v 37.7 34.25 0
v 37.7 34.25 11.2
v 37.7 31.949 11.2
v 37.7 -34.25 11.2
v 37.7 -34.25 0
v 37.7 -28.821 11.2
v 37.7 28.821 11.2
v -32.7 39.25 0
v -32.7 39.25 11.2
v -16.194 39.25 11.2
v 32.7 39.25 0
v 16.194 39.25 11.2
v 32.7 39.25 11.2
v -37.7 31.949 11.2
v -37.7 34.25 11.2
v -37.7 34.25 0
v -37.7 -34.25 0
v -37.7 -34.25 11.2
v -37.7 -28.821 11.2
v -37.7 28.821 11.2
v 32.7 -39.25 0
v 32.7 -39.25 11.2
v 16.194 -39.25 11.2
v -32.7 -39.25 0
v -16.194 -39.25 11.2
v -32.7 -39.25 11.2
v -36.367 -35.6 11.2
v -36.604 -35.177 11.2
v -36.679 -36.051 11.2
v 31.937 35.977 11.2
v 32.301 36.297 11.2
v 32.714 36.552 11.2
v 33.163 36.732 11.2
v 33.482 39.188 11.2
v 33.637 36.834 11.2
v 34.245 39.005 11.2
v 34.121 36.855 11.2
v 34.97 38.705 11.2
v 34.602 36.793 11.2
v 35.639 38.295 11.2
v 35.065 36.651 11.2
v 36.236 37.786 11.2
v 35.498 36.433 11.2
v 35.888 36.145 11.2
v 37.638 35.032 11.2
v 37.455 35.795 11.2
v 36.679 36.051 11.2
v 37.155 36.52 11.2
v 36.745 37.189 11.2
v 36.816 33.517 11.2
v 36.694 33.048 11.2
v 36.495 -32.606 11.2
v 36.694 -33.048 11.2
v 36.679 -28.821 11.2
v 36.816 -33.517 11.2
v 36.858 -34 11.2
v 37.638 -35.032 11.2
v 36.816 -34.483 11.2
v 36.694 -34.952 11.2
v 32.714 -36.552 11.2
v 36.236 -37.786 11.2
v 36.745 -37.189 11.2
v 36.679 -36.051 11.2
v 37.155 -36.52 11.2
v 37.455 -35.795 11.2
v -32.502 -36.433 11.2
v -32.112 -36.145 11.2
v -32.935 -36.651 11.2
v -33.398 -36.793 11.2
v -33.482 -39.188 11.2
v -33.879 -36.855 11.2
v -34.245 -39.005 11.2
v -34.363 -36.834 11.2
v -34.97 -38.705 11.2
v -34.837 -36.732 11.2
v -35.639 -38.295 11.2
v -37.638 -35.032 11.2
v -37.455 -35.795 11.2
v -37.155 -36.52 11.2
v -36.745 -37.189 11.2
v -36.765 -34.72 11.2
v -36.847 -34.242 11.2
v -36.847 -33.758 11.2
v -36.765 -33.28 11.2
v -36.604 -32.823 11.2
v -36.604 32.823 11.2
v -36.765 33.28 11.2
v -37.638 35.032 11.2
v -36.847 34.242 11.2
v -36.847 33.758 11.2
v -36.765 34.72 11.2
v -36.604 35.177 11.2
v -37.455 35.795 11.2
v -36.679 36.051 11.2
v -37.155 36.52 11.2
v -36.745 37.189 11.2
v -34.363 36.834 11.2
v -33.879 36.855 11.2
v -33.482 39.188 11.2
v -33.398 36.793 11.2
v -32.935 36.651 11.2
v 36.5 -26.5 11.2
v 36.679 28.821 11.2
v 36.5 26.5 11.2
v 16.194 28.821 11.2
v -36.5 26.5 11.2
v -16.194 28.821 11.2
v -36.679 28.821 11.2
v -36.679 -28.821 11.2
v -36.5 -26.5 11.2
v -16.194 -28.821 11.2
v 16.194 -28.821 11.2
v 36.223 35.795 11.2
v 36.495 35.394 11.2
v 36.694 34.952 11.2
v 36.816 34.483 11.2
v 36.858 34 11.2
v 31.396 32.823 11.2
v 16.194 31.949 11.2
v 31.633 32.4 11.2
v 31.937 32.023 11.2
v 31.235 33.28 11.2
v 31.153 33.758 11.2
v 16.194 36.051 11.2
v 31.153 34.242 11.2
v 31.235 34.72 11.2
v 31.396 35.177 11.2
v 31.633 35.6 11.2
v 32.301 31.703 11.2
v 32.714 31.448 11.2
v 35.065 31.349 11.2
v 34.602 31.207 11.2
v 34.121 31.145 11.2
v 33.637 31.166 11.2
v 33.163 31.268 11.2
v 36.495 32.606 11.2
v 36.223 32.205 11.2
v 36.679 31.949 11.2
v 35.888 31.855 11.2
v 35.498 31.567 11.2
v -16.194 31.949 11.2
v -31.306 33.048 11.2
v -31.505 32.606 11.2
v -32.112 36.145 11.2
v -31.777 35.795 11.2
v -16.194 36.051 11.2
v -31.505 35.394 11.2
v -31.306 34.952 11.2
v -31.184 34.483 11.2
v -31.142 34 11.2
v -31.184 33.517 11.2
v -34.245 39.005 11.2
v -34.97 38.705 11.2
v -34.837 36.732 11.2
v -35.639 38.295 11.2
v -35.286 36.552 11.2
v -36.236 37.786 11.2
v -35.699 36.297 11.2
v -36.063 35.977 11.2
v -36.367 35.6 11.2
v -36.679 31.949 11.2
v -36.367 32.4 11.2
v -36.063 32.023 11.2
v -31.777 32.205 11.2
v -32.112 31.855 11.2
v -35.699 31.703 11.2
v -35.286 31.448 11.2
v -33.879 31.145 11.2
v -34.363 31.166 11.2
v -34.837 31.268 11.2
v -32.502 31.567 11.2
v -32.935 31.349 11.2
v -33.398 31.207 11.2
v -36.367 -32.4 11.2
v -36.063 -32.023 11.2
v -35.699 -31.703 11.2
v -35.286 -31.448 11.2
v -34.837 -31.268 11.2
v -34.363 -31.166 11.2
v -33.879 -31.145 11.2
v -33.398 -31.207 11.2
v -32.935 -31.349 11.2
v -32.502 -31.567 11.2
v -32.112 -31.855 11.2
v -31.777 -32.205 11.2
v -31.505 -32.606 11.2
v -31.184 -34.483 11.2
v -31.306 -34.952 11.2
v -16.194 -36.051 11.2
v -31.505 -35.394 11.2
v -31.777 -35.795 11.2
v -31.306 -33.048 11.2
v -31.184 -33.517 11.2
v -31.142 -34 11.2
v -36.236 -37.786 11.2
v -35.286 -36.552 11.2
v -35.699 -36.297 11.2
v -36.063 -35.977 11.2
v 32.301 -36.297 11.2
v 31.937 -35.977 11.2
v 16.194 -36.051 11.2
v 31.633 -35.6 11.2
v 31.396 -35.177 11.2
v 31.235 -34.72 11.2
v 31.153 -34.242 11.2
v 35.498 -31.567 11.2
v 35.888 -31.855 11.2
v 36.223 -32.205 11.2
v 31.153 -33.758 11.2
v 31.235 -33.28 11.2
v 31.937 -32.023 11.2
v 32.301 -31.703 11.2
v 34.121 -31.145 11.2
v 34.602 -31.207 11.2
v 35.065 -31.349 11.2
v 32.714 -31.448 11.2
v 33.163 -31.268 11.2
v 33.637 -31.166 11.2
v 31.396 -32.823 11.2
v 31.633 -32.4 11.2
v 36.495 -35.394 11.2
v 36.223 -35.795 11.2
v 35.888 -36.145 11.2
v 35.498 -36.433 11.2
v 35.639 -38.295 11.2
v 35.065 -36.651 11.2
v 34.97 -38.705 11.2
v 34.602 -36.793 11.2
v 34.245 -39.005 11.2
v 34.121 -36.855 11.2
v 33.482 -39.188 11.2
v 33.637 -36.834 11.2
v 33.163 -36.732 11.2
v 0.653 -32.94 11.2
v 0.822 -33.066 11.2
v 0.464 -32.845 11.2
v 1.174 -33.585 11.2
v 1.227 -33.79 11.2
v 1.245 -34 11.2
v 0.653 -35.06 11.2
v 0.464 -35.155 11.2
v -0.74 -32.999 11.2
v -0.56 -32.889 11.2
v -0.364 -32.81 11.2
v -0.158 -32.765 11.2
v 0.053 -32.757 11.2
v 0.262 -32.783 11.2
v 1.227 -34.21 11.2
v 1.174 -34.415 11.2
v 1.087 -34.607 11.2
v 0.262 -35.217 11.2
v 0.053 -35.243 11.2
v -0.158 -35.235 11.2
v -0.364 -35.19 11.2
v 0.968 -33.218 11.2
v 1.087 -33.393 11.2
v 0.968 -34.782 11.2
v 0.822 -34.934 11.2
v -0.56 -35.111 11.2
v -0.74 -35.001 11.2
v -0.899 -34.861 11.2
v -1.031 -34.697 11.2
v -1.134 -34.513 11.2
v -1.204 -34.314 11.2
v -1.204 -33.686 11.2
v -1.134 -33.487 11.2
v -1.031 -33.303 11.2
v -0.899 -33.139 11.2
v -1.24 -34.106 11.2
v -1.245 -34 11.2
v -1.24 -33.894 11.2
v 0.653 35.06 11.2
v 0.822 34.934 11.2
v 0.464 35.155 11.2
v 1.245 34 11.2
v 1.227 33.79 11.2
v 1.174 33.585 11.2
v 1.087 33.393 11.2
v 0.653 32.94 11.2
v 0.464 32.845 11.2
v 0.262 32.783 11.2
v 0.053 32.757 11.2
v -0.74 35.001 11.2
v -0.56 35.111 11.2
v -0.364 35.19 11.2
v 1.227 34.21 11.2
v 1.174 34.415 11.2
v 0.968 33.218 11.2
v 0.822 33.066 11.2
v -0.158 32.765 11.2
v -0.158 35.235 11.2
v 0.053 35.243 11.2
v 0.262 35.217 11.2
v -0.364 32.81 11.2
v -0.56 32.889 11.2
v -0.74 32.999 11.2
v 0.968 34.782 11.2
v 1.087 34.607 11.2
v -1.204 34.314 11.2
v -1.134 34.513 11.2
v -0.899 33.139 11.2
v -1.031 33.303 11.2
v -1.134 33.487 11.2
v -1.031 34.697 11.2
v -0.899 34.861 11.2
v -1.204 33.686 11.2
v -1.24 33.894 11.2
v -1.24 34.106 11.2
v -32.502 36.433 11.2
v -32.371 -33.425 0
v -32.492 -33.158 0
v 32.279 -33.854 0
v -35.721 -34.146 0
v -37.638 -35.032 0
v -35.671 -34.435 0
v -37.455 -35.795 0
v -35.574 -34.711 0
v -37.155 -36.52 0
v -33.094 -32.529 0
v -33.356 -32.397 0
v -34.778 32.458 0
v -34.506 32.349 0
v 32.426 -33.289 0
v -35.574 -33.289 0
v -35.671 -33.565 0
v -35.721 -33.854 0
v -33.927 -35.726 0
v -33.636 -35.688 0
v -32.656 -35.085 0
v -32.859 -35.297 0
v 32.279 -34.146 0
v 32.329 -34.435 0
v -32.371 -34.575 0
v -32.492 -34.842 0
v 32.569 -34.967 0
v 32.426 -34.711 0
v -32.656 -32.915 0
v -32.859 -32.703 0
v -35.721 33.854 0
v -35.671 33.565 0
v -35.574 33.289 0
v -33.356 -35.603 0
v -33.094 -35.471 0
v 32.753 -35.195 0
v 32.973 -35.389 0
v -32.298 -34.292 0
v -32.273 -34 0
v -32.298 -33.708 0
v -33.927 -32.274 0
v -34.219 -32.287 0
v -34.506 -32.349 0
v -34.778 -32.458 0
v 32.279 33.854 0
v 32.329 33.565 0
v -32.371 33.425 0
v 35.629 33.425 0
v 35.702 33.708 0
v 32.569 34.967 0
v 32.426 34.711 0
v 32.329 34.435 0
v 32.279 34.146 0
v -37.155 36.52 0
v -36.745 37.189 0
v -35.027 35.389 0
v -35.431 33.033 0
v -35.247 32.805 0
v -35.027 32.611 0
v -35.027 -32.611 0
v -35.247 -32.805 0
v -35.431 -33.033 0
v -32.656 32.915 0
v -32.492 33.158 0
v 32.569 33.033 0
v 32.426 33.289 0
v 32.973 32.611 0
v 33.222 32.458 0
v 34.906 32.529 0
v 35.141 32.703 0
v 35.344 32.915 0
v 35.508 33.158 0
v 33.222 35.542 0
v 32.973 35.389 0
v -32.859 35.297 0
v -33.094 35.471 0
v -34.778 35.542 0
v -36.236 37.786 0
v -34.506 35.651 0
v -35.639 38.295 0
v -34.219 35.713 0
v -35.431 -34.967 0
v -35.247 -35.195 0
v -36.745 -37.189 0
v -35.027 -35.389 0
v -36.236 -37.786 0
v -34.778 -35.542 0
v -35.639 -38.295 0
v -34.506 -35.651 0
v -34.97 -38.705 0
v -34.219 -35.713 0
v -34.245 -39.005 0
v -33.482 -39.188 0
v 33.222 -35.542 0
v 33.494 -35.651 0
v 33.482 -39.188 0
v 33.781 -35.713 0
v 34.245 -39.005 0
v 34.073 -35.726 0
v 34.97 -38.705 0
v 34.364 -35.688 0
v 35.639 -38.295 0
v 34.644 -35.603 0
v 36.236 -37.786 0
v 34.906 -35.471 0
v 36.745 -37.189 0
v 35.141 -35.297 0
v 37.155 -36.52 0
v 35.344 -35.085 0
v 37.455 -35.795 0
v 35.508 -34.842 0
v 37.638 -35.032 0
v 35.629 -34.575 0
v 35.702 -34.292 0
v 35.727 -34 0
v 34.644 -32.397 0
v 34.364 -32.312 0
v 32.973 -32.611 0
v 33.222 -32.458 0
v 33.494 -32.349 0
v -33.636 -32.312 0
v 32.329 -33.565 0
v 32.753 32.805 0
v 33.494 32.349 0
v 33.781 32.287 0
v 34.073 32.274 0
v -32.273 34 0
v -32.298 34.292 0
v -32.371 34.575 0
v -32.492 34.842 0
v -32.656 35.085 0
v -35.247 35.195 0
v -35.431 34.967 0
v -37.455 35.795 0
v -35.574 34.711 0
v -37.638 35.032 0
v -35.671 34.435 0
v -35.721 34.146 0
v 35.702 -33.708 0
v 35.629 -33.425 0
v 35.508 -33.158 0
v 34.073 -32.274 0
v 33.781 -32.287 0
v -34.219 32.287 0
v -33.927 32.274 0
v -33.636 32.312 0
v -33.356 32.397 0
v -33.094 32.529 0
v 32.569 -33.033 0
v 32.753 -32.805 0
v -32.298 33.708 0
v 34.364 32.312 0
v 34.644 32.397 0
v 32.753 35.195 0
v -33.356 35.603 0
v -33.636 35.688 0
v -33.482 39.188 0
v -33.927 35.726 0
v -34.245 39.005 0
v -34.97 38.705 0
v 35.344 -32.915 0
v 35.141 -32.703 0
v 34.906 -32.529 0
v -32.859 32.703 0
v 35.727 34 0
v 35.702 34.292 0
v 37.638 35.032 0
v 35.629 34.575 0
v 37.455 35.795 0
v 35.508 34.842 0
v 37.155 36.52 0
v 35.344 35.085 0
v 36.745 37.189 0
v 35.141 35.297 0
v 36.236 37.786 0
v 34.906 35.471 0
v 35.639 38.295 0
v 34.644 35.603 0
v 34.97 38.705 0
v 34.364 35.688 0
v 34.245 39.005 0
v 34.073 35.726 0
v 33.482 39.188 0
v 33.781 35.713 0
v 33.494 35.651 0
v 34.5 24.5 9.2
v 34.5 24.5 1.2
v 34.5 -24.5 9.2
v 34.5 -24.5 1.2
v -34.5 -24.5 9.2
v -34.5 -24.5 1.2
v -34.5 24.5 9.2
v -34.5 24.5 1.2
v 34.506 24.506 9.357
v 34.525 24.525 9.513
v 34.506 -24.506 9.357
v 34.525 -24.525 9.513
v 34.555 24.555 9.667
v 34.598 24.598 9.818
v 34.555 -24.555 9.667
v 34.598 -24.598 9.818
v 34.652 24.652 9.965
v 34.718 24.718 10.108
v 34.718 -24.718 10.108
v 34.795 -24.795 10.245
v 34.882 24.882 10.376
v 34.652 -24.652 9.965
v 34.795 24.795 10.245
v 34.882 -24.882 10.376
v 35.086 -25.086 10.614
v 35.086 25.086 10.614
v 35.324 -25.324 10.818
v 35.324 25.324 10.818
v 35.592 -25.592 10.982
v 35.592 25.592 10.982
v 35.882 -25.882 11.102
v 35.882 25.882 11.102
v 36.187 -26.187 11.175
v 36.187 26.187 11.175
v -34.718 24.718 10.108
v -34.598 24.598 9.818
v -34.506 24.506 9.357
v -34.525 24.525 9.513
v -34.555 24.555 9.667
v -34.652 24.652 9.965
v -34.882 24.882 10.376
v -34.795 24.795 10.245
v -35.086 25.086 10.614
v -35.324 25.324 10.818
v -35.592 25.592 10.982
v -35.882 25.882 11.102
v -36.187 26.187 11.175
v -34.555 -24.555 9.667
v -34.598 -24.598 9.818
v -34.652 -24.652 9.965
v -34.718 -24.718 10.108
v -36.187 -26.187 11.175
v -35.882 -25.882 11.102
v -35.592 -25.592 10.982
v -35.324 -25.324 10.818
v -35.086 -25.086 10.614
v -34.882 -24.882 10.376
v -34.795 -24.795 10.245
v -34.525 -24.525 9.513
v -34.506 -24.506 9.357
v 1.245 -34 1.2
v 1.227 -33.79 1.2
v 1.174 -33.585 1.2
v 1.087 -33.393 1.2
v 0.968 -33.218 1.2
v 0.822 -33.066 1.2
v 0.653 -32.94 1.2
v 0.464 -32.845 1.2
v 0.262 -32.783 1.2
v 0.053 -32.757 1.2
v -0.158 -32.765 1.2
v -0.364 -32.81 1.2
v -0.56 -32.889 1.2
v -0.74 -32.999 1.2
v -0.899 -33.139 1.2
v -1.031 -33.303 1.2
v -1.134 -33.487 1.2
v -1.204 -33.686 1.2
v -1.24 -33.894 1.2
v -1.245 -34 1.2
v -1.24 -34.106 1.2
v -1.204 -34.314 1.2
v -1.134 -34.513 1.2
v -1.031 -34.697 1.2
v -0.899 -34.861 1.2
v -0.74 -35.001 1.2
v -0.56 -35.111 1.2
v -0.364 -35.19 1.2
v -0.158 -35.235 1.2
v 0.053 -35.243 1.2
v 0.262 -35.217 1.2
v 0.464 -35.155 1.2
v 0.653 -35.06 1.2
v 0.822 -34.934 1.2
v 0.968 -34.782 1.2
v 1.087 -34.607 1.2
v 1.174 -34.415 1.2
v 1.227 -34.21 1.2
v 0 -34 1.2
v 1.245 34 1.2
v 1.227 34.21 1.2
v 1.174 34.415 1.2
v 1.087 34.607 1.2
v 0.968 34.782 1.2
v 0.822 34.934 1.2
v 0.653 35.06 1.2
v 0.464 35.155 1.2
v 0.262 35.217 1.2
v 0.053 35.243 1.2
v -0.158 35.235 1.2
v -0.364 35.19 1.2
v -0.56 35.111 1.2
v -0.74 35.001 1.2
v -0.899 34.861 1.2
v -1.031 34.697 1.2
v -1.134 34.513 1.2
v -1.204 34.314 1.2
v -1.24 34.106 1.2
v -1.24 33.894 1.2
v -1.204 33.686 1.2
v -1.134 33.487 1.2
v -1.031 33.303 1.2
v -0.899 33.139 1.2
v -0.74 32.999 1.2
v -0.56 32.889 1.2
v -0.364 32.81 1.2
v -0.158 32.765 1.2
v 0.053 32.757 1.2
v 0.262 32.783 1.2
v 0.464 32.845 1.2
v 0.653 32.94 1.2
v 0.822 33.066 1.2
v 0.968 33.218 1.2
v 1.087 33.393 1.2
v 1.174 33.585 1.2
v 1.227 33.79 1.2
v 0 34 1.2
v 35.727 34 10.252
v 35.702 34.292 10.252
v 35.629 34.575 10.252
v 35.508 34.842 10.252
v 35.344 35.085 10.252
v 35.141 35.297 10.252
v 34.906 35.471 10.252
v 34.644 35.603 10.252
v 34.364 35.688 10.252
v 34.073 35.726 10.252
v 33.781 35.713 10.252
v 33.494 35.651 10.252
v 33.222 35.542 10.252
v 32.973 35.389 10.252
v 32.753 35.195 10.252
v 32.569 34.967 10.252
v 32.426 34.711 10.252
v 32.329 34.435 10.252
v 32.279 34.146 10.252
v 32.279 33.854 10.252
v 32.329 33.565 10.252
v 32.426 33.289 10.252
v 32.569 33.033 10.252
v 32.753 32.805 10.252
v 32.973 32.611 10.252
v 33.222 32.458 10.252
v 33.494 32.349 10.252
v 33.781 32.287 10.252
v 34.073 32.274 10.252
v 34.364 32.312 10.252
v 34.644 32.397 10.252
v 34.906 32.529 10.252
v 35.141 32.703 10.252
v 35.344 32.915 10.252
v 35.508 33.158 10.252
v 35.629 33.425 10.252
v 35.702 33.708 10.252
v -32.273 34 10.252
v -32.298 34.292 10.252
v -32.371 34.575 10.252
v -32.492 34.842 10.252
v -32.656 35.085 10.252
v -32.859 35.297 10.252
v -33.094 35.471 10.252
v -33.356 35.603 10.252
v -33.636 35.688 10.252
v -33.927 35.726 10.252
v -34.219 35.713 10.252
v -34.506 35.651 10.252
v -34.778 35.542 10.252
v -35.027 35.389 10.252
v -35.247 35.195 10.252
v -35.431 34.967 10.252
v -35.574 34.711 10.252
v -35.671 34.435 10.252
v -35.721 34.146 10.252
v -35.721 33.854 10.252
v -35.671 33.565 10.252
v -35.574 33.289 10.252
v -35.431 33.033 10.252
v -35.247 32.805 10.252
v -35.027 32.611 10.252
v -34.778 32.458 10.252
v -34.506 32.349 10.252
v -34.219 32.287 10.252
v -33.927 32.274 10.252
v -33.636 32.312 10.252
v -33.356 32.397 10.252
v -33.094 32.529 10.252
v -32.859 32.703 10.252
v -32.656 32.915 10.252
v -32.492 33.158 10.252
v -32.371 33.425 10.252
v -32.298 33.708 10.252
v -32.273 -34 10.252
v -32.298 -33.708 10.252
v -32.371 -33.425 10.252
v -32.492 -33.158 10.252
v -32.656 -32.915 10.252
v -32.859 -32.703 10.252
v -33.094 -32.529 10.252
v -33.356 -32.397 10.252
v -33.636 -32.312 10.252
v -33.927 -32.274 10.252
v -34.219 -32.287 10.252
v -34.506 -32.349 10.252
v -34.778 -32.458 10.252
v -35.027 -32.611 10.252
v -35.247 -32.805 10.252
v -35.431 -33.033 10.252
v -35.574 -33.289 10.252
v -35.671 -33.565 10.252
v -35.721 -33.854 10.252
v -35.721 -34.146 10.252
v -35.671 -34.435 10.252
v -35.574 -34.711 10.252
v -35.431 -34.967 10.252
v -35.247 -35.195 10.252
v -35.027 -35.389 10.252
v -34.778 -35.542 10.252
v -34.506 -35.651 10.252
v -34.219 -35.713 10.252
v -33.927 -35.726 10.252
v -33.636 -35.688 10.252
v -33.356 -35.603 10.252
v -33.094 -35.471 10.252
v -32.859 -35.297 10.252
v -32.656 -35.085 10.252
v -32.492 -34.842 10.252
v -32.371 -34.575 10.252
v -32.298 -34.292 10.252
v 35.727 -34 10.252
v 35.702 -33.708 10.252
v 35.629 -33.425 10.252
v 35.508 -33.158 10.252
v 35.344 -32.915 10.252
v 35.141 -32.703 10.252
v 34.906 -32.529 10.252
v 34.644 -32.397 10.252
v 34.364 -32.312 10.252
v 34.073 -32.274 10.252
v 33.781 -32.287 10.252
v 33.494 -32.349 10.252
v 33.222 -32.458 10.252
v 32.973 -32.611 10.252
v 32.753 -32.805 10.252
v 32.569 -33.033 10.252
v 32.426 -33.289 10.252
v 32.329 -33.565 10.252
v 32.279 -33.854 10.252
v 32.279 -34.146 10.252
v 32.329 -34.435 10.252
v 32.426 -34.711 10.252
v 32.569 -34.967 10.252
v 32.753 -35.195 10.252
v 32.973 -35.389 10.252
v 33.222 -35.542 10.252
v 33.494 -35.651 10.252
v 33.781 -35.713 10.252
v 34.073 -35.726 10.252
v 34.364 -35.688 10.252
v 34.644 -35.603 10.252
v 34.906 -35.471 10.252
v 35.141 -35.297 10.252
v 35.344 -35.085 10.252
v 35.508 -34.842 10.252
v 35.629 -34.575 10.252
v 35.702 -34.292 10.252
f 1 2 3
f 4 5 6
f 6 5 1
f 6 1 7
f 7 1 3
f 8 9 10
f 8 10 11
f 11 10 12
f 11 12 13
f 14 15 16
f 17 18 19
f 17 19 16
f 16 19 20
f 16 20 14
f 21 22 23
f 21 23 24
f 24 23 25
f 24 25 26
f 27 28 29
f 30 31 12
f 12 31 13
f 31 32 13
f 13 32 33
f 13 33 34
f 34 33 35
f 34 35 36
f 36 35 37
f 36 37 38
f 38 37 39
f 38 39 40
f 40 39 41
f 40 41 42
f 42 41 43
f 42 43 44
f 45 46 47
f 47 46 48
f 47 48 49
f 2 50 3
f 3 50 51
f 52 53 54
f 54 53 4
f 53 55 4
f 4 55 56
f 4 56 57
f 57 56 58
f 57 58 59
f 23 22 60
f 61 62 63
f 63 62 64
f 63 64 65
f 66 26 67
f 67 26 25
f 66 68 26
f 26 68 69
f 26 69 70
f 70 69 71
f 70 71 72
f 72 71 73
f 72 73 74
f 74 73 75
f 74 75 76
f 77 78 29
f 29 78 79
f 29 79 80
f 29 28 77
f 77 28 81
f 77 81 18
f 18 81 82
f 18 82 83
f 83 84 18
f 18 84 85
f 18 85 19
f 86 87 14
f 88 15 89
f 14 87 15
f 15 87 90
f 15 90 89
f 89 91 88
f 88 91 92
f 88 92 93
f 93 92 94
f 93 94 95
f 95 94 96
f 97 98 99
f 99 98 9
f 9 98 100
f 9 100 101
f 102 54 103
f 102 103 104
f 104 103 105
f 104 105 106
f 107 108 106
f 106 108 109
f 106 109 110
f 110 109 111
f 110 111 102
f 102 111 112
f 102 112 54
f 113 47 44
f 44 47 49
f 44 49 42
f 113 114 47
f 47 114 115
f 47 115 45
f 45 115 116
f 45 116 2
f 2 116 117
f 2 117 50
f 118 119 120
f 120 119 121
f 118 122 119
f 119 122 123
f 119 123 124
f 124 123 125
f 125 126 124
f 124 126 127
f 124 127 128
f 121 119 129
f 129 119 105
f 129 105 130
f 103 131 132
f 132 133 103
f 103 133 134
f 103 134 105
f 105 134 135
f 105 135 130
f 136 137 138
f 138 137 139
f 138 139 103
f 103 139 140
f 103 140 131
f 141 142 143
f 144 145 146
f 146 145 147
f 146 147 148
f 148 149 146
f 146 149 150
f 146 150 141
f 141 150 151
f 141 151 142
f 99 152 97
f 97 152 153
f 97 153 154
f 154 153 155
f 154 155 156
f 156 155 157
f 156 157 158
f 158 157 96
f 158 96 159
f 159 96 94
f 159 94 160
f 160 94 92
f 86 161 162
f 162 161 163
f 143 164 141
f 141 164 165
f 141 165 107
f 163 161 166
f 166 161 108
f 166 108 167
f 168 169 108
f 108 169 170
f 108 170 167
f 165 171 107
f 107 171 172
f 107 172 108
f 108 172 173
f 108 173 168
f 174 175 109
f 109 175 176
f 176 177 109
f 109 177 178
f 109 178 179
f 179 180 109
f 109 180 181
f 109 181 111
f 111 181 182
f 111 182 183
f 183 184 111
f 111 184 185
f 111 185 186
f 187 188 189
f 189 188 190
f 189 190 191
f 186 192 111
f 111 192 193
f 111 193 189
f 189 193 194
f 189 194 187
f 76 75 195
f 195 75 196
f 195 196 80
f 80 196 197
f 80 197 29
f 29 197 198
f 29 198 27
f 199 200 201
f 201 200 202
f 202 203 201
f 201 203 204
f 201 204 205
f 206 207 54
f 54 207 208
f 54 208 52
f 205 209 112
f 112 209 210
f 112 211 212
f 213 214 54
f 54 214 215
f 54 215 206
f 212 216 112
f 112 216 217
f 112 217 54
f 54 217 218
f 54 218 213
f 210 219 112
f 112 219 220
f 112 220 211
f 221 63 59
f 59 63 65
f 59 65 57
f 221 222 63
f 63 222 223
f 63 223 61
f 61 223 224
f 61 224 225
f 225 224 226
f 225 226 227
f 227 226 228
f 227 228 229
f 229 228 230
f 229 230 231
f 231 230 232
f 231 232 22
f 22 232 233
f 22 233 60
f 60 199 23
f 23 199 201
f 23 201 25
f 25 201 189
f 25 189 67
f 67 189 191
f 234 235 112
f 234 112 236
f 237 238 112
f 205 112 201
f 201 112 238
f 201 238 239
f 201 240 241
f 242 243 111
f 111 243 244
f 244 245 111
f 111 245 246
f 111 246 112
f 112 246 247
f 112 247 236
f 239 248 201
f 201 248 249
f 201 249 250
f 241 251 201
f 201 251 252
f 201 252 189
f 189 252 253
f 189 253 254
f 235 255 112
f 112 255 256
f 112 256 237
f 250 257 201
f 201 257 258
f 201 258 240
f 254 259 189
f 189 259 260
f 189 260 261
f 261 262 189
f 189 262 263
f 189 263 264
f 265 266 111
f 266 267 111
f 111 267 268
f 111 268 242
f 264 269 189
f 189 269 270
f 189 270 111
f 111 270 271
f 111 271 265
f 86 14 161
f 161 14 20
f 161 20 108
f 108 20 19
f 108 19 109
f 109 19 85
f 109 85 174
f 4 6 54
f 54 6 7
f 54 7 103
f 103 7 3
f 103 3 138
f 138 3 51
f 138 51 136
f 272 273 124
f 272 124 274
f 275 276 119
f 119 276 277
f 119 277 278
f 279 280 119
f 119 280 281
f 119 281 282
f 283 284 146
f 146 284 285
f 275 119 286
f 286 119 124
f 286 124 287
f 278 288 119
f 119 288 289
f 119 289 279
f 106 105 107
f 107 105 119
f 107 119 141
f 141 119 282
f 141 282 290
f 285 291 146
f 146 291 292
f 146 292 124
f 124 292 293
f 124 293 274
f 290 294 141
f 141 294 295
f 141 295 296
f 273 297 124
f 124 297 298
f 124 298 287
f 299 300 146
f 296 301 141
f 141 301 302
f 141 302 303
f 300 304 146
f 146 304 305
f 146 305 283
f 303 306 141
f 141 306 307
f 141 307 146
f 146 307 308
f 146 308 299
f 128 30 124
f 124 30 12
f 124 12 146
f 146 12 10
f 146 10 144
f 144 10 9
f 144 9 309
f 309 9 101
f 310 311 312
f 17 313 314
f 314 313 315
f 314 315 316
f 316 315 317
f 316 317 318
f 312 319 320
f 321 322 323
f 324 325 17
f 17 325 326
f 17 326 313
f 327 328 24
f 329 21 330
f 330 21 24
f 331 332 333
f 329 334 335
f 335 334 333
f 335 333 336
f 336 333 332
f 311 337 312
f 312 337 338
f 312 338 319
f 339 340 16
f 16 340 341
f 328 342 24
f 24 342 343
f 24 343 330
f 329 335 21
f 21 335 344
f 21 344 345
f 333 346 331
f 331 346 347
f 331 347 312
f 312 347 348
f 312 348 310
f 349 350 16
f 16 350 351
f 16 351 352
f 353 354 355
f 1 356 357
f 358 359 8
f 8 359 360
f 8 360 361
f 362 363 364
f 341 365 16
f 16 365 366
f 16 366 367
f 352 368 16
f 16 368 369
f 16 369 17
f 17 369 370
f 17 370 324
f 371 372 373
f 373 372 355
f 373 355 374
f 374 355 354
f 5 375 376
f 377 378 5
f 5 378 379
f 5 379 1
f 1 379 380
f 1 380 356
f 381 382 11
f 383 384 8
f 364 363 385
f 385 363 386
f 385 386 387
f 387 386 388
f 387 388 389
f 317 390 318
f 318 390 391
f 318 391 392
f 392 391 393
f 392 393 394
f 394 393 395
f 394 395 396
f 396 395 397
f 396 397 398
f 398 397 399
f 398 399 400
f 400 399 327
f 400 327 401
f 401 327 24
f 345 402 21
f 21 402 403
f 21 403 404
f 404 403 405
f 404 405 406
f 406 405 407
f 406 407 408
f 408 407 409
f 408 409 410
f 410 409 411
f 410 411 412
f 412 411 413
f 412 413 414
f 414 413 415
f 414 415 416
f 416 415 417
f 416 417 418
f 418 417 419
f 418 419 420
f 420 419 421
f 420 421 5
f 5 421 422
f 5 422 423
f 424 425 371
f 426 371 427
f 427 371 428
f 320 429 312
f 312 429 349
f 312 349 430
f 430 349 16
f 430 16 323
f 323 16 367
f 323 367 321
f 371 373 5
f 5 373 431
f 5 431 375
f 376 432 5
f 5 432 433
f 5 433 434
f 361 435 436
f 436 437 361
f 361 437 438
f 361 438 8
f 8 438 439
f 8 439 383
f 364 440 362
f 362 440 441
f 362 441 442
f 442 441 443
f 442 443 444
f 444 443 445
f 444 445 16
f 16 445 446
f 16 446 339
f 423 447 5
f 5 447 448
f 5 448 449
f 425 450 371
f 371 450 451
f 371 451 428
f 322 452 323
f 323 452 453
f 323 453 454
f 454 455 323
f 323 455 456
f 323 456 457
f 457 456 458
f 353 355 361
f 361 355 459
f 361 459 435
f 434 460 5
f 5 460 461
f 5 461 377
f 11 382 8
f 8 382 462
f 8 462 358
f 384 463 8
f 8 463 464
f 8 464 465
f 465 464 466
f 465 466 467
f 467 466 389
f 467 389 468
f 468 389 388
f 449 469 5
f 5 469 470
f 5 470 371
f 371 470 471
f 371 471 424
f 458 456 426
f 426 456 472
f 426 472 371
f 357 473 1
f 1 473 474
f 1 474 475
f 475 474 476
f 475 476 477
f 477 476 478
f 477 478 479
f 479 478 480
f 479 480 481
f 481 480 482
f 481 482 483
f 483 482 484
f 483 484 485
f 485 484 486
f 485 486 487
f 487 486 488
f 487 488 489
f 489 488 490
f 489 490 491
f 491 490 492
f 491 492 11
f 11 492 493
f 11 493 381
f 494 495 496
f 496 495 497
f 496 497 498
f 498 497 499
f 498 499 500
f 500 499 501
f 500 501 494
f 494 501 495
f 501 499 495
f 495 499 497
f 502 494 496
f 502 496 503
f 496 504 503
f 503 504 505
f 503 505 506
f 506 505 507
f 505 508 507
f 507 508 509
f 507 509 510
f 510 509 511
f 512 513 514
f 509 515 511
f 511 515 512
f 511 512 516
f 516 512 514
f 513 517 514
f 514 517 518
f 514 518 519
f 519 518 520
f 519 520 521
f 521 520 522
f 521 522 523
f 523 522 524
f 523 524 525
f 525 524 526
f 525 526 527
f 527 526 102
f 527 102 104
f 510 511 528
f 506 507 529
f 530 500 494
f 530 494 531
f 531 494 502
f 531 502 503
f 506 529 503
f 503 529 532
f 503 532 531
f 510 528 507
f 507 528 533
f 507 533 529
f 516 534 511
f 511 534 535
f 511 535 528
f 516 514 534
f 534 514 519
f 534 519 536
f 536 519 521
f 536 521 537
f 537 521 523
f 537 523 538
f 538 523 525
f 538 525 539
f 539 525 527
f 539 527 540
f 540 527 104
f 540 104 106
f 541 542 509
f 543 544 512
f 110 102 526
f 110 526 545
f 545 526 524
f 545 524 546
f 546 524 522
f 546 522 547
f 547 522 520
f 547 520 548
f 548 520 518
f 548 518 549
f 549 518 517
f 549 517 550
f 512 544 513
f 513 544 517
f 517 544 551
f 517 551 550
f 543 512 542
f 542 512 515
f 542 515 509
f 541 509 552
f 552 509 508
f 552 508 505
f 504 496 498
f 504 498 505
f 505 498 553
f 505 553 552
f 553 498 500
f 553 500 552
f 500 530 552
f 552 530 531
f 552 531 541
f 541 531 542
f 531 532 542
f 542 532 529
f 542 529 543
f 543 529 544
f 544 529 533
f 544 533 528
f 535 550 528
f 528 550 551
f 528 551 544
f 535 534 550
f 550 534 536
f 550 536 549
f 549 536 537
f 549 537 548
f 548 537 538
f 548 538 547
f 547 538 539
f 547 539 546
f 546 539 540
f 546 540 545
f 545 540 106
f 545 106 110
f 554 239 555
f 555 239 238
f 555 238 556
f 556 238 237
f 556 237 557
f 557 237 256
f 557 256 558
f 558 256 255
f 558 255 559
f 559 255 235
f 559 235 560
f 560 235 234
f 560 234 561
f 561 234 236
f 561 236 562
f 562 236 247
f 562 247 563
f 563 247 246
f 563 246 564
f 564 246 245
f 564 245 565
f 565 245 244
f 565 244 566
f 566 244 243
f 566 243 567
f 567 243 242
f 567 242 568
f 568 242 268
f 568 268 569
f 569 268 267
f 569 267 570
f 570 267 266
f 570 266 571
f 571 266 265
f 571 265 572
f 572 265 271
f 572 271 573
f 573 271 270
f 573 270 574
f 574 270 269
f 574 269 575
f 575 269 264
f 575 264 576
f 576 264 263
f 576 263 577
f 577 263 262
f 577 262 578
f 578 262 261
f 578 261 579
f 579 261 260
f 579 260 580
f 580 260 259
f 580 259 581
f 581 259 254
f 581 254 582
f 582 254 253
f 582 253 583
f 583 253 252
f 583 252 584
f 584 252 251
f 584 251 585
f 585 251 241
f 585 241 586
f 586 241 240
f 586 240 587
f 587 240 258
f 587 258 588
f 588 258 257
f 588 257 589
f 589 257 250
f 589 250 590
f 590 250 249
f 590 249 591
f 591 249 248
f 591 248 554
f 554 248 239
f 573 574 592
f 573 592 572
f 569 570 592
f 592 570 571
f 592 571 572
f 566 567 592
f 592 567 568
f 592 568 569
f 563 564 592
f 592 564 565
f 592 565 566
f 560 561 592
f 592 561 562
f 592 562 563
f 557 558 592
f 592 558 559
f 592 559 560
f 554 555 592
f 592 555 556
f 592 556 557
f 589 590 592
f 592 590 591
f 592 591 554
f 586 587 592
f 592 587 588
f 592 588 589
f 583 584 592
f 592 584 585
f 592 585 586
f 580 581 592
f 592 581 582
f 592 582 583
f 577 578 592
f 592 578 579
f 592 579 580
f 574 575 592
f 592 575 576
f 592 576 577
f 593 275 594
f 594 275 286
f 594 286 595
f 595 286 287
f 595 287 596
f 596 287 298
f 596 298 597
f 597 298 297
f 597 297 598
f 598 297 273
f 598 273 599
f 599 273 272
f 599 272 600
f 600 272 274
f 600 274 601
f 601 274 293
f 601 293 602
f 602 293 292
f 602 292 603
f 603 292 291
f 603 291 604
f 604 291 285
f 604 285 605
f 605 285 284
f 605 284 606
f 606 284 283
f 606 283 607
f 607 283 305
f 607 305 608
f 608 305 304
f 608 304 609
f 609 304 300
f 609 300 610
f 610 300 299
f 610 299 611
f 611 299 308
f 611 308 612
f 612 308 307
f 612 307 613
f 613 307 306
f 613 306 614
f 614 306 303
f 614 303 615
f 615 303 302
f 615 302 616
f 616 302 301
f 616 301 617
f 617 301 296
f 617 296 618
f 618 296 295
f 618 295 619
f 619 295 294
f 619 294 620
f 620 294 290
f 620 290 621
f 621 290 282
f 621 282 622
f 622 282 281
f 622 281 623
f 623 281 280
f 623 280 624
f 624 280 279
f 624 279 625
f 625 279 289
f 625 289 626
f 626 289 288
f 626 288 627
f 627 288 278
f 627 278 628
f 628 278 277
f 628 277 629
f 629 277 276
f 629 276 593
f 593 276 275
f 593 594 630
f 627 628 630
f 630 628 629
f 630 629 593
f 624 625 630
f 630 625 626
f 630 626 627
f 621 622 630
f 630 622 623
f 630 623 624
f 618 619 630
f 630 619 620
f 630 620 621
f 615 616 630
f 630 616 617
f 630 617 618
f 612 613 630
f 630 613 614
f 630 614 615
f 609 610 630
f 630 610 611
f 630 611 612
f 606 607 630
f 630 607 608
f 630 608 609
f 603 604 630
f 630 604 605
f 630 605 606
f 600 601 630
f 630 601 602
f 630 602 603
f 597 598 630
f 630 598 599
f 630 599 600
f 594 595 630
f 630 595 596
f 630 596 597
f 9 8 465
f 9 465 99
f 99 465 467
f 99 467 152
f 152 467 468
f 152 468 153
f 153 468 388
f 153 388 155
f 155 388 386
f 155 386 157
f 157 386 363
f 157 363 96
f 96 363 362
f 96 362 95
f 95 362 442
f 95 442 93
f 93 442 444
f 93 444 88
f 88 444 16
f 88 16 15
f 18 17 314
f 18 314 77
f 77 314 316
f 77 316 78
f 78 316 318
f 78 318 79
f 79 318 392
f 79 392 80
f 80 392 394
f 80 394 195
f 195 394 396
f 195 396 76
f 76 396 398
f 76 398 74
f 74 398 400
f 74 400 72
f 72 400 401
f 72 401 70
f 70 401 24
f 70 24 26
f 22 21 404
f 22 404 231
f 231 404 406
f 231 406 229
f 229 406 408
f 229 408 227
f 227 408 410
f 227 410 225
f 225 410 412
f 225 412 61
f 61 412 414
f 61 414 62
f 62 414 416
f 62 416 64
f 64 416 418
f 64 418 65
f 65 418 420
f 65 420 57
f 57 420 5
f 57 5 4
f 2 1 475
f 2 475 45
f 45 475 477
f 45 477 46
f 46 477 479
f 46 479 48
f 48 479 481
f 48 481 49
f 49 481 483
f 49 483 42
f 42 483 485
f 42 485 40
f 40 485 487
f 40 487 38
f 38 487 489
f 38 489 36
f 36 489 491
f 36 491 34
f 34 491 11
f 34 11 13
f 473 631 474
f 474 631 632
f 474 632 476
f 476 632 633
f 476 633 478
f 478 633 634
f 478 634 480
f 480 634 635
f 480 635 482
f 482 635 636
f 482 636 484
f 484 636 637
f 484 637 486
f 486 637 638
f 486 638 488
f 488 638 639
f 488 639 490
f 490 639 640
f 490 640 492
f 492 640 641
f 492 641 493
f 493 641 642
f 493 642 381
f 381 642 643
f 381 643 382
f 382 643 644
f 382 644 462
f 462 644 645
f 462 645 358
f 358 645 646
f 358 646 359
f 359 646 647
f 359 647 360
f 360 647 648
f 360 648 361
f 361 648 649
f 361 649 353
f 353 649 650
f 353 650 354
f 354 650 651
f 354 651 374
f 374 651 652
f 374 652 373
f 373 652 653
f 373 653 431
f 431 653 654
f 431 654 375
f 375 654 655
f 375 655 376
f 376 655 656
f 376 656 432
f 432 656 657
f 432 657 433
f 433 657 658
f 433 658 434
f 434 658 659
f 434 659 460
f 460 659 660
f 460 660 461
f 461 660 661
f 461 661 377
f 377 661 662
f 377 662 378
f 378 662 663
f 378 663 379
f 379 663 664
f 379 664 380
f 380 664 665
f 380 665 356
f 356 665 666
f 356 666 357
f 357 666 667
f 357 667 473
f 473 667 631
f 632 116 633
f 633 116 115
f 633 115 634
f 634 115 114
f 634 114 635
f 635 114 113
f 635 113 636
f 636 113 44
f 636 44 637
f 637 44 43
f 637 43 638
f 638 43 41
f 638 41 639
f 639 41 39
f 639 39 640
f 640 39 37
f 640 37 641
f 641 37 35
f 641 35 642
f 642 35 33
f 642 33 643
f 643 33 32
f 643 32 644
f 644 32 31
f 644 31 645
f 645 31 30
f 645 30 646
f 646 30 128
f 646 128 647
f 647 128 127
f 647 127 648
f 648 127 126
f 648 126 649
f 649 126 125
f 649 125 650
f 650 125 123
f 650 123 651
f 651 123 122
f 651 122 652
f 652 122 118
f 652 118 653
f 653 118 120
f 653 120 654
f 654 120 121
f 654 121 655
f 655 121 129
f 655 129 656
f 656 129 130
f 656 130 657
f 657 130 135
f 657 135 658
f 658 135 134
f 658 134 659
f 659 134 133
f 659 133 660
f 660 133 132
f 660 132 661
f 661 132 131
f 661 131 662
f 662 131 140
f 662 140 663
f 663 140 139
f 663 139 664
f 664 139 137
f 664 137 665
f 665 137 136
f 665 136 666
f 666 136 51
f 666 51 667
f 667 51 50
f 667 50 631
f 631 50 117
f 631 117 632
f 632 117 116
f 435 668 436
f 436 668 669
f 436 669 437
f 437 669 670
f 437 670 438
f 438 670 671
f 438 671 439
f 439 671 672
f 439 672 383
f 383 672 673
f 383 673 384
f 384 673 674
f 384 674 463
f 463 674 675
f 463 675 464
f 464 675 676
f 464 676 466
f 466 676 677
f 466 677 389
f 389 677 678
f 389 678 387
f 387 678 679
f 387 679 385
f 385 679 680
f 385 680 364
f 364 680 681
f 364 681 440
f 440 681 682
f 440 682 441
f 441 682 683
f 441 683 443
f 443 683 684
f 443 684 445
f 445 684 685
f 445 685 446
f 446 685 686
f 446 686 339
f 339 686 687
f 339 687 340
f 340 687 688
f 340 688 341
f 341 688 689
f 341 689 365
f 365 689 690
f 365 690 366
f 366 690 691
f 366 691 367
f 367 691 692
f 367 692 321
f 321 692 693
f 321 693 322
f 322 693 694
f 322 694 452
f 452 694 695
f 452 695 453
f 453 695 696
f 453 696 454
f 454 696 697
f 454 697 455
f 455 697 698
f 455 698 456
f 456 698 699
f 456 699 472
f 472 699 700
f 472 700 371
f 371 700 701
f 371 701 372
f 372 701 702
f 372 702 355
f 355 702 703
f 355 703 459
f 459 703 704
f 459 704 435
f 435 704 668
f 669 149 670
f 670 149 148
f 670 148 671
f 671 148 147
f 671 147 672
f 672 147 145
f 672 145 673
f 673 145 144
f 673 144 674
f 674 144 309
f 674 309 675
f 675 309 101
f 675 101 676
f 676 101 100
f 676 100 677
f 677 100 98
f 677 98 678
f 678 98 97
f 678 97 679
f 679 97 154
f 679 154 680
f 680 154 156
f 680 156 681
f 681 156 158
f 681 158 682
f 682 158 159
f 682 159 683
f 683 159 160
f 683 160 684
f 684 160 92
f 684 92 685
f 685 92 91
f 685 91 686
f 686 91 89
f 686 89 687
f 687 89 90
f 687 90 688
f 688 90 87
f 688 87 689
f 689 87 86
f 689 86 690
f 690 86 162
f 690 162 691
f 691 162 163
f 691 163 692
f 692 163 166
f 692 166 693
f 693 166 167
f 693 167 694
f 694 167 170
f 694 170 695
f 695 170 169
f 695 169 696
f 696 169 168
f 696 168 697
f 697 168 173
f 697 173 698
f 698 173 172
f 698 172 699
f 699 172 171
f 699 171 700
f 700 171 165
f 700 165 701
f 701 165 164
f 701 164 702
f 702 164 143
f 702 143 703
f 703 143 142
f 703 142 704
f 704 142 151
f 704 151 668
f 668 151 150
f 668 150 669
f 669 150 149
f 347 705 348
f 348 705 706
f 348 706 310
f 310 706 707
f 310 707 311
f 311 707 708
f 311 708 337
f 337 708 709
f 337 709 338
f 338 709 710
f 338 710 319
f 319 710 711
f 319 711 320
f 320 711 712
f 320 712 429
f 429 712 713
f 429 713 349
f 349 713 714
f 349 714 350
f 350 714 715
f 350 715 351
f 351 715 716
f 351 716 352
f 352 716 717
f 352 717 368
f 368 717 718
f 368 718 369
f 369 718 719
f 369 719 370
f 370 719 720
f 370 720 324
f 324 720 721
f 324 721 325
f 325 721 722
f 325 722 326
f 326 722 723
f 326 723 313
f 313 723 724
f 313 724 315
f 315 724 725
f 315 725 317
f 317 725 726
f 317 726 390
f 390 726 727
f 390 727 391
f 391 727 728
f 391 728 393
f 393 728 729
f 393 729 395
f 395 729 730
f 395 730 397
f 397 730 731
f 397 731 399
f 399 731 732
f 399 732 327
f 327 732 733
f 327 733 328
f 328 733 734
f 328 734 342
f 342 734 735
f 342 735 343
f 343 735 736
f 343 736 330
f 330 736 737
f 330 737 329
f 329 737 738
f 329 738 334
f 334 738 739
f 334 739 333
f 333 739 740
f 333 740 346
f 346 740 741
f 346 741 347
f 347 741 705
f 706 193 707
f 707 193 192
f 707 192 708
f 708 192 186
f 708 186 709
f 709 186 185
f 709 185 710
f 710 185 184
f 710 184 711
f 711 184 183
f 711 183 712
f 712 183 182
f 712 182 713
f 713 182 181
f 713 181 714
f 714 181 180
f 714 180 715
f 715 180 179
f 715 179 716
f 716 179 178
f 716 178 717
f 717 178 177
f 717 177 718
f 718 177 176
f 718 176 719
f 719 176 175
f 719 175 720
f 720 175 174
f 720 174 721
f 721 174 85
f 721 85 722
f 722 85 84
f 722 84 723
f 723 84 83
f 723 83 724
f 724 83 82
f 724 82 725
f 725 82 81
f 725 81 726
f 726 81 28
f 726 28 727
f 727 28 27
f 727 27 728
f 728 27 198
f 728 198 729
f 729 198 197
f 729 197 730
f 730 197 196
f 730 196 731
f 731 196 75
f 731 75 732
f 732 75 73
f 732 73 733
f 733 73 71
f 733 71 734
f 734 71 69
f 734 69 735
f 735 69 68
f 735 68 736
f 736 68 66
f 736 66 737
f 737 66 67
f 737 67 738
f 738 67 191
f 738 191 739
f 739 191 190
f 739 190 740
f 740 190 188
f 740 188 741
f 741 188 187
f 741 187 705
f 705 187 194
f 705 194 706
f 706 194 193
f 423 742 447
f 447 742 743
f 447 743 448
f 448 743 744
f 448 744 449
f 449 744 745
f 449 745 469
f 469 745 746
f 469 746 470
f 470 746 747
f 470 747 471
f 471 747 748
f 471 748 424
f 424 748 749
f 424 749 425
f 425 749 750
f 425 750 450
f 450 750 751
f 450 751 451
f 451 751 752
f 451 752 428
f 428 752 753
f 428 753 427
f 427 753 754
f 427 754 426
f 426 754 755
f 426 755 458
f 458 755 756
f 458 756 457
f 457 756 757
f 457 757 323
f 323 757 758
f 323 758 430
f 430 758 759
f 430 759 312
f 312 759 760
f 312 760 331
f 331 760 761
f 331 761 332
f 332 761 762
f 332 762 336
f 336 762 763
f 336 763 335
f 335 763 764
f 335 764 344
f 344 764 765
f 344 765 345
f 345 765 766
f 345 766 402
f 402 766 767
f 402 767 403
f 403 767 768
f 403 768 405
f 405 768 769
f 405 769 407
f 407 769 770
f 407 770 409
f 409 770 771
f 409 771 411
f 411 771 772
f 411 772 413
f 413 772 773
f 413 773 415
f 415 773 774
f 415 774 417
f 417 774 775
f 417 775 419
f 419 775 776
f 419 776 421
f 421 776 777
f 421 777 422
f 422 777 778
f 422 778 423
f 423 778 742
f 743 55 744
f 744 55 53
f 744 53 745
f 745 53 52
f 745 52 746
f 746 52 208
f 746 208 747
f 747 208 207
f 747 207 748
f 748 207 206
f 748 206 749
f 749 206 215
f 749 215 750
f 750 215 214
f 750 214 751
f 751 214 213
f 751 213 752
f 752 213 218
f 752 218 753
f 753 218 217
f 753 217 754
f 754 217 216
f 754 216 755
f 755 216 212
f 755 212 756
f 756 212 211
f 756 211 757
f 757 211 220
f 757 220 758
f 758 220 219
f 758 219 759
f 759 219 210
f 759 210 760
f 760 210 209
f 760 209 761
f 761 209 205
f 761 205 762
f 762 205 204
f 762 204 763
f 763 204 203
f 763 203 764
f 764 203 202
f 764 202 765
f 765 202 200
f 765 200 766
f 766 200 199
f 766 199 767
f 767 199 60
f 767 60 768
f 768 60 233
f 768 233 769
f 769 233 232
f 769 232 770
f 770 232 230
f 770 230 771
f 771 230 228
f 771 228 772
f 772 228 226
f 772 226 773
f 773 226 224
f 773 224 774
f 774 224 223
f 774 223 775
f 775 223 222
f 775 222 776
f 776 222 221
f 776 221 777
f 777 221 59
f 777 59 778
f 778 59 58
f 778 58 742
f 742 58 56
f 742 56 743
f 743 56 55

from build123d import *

# Parameters (mm, degrees)
SKETCH1_W                                         = 75.4
SKETCH1_H                                         = 78.5
BOSS_EXTRUDE1_DEPTH                               = 11.2
SKETCH2_W                                         = 69
SKETCH2_H                                         = 49
CUT_EXTRUDE1_DEPTH                                = 10
FILLET2_R                                         = 2
SKETCH3_R                                         = 1.2446
CUT_EXTRUDE2_DEPTH                                = 10
FILLET3_R                                         = 5
CSK_FOR_4_FLAT_HEAD_MACHINE_SCREW_100_D           = 3.4544
CSK_FOR_4_FLAT_HEAD_MACHINE_SCREW_100_CSINK_D     = 5.715
CSK_FOR_4_FLAT_HEAD_MACHINE_SCREW_100_CSINK_ANGLE = 100


with BuildPart() as part:
    # Sketch1 → Boss-Extrude1 (new body)
    with BuildSketch(Plane.XY):
        Rectangle(SKETCH1_W, SKETCH1_H)
    extrude(amount=BOSS_EXTRUDE1_DEPTH)

    # Sketch2 → Cut-Extrude1 (cut)
    with BuildSketch(Plane.XY.offset(11.2)):
        Rectangle(SKETCH2_W, SKETCH2_H)
    extrude(amount=-CUT_EXTRUDE1_DEPTH, mode=Mode.SUBTRACT)

    # Fillet2
    fillet2_edges = [part.edges().sort_by_distance(p)[0] for p in [
        (34.5, 0, 11.2),
        (0, 24.5, 11.2),
        (-34.5, 0, 11.2),
        (0, -24.5, 11.2),
    ]]
    fillet(fillet2_edges, radius=FILLET2_R)

    # Sketch3 → Cut-Extrude2 (cut)
    with BuildSketch(Plane.XY.offset(11.2)):
        with Locations((0, 34)):
            Circle(SKETCH3_R)
        with Locations(Location((0, -34, 0), (0, 0, 180))):
            Circle(SKETCH3_R)
    extrude(amount=-CUT_EXTRUDE2_DEPTH, mode=Mode.SUBTRACT)

    # Fillet3
    fillet3_edges = [part.edges().sort_by_distance(p)[0] for p in [
        (37.7, -39.25, 5.6),
        (-37.7, -39.25, 5.6),
        (-37.7, 39.25, 5.6),
        (37.7, 39.25, 5.6),
    ]]
    fillet(fillet3_edges, radius=FILLET3_R)

    # CSK for #4 Flat Head Machine Screw (100)1 (through all)
    with Locations(Plane.XY.offset(11.2)):
        with Locations((34, -34), (-34, -34), (-34, 34), (34, 34)):
            CounterSinkHole(CSK_FOR_4_FLAT_HEAD_MACHINE_SCREW_100_D / 2, CSK_FOR_4_FLAT_HEAD_MACHINE_SCREW_100_CSINK_D / 2, counter_sink_angle=CSK_FOR_4_FLAT_HEAD_MACHINE_SCREW_100_CSINK_ANGLE)


solid = part.part
